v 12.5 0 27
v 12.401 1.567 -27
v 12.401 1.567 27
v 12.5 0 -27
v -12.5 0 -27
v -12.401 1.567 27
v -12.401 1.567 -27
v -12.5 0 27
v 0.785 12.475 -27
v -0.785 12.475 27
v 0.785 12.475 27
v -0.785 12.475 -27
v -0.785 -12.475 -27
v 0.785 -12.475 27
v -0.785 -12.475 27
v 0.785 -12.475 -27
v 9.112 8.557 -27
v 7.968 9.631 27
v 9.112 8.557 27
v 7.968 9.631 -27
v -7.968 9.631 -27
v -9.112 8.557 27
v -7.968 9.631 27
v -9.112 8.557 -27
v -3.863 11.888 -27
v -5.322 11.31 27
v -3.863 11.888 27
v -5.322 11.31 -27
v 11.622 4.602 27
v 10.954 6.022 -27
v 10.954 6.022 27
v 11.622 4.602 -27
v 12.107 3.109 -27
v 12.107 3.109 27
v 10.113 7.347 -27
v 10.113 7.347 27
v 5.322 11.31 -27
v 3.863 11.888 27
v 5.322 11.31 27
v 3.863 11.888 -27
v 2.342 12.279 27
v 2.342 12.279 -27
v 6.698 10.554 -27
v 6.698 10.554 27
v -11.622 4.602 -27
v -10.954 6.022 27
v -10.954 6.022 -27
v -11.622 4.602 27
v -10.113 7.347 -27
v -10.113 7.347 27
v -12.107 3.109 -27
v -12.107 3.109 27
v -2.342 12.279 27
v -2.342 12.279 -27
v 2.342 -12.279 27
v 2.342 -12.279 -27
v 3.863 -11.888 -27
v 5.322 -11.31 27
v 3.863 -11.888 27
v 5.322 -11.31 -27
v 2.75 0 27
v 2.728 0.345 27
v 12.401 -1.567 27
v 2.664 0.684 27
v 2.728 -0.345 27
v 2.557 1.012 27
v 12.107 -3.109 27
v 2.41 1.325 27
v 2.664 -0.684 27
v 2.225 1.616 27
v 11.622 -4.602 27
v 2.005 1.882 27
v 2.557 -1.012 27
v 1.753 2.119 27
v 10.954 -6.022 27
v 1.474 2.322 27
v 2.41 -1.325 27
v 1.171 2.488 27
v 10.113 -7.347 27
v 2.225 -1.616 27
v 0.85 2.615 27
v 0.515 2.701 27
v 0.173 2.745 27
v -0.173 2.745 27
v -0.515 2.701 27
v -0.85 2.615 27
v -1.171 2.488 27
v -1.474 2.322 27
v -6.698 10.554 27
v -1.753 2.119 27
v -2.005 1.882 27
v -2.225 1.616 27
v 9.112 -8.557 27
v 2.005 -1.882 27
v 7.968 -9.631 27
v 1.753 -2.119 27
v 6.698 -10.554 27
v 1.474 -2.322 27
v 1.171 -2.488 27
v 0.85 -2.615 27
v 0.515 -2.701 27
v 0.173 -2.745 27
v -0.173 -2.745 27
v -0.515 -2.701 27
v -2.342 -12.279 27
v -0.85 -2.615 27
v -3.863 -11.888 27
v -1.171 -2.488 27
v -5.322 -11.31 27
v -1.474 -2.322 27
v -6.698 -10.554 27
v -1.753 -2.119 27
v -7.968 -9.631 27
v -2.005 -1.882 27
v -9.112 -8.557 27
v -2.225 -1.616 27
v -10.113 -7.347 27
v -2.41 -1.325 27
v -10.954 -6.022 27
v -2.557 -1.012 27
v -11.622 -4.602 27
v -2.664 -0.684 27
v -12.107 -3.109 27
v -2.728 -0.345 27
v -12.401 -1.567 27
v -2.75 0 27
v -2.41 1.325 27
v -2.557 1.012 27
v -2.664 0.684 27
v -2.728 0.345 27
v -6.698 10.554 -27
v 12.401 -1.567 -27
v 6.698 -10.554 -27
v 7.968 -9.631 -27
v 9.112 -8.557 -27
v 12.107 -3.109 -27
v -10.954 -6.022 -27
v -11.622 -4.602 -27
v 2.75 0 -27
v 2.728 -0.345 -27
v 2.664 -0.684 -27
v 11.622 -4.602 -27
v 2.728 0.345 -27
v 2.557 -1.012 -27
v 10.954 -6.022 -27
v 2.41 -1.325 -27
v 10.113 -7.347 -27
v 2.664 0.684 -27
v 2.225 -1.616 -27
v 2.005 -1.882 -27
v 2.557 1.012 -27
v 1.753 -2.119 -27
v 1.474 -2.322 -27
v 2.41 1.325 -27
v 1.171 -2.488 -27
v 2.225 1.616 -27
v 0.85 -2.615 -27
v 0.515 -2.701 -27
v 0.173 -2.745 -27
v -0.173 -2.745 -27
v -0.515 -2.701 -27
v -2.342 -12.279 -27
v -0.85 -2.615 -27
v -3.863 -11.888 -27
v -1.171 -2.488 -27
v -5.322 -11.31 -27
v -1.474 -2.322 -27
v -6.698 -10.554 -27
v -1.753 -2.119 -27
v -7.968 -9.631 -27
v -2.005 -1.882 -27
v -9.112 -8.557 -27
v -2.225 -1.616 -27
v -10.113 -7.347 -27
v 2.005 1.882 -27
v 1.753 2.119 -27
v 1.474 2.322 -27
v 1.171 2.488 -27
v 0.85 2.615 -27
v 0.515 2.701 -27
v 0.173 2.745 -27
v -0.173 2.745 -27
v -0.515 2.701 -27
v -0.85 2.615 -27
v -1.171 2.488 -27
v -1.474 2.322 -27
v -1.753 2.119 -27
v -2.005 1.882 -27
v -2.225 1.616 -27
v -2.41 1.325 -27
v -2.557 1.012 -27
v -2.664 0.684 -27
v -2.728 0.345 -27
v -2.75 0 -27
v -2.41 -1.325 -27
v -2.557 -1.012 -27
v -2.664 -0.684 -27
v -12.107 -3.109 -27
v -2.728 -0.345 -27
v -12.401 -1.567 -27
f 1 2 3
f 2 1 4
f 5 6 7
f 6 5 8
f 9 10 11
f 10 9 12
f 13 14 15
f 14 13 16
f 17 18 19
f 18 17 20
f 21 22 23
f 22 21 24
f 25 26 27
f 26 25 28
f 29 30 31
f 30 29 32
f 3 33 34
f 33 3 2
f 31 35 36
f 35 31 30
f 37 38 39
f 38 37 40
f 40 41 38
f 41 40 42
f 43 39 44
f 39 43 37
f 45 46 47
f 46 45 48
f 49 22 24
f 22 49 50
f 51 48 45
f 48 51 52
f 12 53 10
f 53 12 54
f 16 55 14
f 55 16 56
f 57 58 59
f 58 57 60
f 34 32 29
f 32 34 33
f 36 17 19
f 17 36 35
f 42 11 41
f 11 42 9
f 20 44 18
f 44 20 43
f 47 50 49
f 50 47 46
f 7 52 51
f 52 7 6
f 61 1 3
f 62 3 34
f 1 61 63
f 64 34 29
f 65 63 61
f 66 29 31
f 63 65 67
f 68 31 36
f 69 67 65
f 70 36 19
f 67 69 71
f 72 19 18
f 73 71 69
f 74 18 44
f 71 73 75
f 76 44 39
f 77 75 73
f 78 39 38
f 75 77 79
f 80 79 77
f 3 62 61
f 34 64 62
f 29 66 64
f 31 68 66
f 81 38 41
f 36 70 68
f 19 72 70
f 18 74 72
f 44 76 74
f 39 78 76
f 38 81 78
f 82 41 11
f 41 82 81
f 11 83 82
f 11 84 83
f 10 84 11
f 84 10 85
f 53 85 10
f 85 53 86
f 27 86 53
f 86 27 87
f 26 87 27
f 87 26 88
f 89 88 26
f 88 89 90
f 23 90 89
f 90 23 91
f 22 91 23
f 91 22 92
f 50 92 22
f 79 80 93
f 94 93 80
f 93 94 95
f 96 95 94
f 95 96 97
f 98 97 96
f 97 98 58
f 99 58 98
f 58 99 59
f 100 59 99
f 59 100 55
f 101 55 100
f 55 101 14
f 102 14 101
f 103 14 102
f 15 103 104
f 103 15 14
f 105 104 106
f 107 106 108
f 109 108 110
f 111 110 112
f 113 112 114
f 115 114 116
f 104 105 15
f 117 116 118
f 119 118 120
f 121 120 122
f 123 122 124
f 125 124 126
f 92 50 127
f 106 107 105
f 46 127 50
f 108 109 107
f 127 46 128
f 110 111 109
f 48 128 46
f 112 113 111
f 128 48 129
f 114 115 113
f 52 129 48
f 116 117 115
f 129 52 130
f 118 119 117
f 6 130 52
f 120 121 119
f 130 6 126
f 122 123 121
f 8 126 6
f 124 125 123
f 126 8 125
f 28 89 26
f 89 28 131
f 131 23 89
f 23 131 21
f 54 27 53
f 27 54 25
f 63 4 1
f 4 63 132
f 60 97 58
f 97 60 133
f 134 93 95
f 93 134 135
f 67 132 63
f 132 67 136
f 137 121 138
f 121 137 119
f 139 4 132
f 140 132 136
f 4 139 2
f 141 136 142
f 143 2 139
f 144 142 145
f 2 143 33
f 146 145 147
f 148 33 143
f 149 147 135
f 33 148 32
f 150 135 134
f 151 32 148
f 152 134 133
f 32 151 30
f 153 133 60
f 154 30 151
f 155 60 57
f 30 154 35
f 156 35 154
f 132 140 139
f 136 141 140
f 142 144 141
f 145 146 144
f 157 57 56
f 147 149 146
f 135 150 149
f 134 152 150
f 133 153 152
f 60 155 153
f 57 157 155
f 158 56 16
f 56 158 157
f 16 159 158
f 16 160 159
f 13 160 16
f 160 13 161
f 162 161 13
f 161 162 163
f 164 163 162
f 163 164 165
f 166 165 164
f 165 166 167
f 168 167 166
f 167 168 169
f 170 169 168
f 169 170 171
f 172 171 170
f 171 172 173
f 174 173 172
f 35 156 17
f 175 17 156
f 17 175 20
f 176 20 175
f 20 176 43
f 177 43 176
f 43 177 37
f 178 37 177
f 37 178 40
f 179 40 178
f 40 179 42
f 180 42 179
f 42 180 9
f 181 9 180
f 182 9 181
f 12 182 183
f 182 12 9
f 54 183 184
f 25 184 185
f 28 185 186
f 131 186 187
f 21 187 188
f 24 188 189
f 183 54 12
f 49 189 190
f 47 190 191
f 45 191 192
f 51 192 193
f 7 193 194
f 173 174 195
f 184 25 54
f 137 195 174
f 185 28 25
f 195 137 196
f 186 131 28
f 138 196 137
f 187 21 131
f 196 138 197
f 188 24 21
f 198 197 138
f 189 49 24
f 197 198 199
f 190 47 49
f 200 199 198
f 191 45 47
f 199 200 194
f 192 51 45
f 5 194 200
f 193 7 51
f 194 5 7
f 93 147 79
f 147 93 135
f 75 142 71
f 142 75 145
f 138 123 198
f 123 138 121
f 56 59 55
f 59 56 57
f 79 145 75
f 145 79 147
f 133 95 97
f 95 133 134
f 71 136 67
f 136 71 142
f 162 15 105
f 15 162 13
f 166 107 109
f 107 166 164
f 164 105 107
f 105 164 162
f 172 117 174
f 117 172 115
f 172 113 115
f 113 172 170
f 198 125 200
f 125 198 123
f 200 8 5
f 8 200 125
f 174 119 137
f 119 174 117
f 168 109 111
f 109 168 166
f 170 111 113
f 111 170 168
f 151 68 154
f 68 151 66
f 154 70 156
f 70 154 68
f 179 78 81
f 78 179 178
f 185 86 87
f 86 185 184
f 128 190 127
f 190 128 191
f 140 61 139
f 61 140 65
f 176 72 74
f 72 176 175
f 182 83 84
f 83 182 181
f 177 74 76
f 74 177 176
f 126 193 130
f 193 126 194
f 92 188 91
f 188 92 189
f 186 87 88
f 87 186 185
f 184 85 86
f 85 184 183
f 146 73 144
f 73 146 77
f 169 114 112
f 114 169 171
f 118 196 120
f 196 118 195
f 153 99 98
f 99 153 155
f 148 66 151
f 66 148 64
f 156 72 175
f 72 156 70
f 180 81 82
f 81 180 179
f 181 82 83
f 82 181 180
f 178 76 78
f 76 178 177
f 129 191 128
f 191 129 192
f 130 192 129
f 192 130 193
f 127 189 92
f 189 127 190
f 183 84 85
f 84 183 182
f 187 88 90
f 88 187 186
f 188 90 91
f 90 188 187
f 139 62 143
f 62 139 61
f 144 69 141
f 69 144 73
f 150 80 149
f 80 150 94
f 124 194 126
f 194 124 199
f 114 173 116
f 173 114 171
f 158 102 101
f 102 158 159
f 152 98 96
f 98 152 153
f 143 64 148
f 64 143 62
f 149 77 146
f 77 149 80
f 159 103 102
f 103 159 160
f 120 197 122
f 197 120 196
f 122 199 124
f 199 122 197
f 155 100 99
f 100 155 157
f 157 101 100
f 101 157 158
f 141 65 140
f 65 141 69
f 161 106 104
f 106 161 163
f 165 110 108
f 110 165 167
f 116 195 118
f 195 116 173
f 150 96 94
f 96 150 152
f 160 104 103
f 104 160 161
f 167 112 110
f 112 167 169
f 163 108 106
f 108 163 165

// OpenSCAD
$fn = 50;


difference() {
	union() {
		translate(v = [0, 0, -27.0000000000]) {
			cylinder(h = 54, r = 12.5000000000);
		}
	}
	union() {
		translate(v = [0, 0, -100.0000000000]) {
			cylinder(h = 200, r = 2.7500000000);
		}
	}
}
